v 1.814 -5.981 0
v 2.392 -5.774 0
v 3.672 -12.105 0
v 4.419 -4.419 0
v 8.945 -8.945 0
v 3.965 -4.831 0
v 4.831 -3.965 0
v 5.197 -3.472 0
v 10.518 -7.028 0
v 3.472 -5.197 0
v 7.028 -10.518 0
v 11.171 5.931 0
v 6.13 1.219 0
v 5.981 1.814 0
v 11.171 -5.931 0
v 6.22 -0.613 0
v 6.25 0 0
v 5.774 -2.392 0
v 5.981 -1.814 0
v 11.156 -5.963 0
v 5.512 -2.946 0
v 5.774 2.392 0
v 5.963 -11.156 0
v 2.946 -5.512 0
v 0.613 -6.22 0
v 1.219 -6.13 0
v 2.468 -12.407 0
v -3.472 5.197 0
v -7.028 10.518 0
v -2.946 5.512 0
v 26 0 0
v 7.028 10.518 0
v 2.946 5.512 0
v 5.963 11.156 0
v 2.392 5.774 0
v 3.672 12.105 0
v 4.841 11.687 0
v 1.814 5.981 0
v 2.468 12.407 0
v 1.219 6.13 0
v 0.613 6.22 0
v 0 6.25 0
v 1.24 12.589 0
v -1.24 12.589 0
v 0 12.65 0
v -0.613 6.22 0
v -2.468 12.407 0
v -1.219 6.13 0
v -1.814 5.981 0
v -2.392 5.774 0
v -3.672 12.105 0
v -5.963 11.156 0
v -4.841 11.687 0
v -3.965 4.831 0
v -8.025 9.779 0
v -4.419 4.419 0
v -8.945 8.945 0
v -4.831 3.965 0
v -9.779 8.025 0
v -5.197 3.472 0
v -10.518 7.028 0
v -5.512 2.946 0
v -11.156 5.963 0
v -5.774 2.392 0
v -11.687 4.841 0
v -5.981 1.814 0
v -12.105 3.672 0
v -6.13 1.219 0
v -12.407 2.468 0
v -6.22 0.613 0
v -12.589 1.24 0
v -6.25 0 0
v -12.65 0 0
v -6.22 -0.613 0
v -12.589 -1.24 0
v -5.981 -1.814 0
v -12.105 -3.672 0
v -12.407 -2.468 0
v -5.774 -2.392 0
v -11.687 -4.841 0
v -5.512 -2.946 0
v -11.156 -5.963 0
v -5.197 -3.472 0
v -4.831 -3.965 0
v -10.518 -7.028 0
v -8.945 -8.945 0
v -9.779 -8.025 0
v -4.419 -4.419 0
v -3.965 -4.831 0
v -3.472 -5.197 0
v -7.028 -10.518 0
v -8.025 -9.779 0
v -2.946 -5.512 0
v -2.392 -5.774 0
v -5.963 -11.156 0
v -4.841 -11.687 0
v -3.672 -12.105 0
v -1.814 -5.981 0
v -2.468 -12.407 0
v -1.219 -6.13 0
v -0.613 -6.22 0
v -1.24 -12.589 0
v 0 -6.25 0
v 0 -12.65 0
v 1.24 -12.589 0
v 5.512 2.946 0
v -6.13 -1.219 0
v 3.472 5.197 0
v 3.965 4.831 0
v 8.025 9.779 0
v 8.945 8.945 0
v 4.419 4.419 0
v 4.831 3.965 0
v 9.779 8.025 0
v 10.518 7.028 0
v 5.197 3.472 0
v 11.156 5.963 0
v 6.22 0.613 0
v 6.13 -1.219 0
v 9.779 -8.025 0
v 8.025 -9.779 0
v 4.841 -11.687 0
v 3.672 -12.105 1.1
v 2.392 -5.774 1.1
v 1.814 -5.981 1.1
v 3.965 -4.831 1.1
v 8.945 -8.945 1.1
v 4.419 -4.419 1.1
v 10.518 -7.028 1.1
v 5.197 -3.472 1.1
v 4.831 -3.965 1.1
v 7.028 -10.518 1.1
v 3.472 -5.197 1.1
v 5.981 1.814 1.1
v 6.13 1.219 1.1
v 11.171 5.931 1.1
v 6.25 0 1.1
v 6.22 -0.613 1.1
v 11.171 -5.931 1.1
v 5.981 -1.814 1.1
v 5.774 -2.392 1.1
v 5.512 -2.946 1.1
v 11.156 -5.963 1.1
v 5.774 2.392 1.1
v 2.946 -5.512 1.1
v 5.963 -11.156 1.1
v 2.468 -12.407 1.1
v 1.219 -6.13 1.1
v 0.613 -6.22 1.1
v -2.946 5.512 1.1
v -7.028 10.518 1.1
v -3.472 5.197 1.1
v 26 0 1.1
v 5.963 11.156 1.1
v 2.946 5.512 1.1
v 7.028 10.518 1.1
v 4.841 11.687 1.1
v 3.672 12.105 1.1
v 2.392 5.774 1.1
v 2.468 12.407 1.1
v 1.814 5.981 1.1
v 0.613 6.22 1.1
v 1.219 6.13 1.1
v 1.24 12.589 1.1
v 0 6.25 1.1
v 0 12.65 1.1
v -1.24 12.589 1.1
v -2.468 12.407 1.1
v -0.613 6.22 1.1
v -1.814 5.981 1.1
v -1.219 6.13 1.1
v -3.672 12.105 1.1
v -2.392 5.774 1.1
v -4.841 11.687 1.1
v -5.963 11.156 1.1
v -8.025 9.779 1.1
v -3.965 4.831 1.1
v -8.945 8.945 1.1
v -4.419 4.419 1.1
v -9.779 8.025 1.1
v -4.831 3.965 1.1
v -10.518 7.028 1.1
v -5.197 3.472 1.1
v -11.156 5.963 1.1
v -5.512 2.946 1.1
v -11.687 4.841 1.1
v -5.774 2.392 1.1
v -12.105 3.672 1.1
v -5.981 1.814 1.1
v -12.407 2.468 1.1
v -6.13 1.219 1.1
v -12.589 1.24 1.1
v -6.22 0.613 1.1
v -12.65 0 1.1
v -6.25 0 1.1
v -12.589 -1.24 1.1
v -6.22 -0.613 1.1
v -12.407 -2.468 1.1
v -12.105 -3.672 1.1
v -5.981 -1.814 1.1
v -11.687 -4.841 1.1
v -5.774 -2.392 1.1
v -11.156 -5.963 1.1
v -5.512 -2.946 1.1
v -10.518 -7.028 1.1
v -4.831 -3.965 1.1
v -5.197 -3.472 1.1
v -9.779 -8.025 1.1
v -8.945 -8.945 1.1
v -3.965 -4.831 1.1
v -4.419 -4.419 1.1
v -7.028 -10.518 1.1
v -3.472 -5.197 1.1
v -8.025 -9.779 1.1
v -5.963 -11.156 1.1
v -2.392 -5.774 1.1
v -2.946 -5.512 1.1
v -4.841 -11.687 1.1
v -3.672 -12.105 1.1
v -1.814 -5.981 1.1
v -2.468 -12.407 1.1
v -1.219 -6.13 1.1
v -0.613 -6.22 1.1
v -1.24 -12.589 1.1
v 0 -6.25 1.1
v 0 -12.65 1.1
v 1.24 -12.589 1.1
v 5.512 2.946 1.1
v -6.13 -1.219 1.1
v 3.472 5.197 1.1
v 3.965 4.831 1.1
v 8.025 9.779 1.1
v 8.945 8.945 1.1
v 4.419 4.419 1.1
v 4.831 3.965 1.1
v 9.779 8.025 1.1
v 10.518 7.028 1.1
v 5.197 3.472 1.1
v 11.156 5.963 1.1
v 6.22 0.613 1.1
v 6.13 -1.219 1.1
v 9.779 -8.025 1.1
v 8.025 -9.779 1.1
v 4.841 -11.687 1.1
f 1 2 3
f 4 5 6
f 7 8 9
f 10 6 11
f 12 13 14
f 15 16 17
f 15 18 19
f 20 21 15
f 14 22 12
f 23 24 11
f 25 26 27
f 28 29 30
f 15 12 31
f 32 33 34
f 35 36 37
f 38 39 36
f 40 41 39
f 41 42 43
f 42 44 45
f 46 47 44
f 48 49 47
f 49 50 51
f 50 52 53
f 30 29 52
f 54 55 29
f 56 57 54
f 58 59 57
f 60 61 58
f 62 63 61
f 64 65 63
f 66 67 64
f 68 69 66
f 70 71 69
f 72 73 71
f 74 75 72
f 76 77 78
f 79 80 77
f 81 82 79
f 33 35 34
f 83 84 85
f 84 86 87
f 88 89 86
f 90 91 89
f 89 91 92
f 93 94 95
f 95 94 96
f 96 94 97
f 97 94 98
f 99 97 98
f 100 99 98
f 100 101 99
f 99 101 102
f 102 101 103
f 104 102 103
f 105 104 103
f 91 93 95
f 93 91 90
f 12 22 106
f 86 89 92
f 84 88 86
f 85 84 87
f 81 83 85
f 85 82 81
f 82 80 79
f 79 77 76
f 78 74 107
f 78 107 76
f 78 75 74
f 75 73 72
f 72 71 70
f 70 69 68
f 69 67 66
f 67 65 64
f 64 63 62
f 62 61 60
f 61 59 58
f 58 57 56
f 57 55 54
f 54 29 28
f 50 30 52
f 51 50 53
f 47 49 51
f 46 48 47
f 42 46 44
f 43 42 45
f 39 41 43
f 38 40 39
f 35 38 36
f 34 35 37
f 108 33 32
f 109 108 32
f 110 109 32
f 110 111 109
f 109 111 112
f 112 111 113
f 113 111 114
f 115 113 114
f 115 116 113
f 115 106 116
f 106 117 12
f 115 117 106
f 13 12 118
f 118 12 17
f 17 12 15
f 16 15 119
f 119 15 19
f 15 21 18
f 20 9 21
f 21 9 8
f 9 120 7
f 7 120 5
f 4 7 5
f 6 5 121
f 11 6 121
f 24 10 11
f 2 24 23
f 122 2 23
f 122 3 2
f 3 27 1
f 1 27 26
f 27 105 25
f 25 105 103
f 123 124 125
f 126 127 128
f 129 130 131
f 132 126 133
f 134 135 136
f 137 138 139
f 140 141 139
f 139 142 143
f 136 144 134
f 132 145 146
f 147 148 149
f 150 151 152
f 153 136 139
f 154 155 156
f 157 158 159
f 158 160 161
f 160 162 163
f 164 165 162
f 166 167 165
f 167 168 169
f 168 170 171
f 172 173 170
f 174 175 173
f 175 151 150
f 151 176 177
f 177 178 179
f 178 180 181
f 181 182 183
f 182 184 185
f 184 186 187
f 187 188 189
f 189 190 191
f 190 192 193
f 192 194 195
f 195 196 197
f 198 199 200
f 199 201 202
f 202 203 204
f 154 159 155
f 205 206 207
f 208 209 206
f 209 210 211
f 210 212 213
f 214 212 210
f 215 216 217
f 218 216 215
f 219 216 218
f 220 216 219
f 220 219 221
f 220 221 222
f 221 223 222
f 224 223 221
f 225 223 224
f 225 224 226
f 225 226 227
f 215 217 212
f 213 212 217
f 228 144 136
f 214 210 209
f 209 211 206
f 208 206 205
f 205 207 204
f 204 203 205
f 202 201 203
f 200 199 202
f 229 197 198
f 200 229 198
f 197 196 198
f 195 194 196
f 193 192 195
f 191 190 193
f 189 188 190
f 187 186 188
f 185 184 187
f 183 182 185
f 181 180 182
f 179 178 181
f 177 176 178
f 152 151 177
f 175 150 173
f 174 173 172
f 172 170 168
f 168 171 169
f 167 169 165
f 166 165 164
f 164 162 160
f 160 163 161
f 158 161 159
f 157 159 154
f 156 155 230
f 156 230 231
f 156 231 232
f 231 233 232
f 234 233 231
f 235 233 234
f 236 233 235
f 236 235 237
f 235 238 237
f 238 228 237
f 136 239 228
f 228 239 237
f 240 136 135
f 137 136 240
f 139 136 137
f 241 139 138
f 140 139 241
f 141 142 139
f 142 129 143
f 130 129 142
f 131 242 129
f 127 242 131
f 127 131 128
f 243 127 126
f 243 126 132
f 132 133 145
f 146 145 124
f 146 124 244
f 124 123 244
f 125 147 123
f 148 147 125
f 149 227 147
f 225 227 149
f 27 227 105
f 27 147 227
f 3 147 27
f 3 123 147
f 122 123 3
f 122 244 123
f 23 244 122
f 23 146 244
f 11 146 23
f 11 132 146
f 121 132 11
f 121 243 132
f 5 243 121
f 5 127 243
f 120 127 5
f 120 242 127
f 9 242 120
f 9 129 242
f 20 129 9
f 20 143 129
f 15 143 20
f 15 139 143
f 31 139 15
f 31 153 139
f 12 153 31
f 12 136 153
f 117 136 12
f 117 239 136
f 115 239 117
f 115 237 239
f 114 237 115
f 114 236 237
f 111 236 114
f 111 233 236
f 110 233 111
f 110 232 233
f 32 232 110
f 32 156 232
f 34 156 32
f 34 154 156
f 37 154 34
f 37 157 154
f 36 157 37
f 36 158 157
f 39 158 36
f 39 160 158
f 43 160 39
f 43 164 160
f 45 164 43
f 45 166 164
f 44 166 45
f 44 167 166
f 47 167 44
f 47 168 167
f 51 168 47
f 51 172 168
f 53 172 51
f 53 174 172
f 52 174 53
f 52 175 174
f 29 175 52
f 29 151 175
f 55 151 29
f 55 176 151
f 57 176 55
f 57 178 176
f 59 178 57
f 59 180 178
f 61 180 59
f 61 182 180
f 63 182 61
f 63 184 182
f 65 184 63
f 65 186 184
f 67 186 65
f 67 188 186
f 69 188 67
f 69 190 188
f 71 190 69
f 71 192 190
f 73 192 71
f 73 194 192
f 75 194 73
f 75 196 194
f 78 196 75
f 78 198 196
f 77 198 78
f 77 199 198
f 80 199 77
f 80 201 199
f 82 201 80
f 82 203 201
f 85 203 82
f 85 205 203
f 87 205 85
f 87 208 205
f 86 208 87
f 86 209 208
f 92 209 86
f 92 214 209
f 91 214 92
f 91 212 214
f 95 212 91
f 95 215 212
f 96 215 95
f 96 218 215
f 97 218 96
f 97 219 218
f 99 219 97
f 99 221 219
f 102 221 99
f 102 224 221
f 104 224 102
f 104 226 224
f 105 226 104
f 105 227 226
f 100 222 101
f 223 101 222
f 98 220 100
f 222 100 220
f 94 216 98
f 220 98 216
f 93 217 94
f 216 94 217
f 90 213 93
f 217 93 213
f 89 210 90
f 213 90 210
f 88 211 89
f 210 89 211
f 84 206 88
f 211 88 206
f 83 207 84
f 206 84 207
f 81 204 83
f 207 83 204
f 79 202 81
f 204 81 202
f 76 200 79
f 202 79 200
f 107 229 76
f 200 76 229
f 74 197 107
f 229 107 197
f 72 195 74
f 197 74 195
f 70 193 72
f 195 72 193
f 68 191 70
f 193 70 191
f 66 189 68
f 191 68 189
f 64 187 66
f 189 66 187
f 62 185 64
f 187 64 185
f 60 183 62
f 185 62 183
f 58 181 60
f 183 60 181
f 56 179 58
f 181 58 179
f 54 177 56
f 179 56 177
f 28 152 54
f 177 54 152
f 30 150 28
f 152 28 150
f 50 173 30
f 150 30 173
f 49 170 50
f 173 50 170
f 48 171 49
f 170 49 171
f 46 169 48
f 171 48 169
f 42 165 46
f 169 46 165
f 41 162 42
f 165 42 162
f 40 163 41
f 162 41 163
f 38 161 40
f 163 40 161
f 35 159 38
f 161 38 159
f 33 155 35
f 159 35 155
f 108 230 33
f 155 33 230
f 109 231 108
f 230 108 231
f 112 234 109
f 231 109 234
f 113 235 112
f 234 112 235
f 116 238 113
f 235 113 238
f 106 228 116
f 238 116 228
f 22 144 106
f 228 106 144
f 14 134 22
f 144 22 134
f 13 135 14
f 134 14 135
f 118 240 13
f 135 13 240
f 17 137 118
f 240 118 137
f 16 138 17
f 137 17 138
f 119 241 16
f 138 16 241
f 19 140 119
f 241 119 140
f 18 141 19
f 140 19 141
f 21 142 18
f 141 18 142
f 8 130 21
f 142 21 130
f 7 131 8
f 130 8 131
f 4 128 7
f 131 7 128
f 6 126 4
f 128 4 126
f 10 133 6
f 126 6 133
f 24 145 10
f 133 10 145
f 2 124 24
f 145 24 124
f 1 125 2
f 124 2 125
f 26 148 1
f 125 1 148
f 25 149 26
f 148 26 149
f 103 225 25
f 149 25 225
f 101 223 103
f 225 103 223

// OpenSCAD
// Function count - increase to improve object resolution
$fn=64;

/*********** START ************/

// Thickness
linear_extrude(height = 1.1) {

  union() {

    difference() {
      // Main ring
      circle(d=25.3);
      // center hole
      circle(d=12.5);
    }

    // Pointer  
    polygon(points=[[11,-6],[26,0],[11,6]]); 
  }
}
